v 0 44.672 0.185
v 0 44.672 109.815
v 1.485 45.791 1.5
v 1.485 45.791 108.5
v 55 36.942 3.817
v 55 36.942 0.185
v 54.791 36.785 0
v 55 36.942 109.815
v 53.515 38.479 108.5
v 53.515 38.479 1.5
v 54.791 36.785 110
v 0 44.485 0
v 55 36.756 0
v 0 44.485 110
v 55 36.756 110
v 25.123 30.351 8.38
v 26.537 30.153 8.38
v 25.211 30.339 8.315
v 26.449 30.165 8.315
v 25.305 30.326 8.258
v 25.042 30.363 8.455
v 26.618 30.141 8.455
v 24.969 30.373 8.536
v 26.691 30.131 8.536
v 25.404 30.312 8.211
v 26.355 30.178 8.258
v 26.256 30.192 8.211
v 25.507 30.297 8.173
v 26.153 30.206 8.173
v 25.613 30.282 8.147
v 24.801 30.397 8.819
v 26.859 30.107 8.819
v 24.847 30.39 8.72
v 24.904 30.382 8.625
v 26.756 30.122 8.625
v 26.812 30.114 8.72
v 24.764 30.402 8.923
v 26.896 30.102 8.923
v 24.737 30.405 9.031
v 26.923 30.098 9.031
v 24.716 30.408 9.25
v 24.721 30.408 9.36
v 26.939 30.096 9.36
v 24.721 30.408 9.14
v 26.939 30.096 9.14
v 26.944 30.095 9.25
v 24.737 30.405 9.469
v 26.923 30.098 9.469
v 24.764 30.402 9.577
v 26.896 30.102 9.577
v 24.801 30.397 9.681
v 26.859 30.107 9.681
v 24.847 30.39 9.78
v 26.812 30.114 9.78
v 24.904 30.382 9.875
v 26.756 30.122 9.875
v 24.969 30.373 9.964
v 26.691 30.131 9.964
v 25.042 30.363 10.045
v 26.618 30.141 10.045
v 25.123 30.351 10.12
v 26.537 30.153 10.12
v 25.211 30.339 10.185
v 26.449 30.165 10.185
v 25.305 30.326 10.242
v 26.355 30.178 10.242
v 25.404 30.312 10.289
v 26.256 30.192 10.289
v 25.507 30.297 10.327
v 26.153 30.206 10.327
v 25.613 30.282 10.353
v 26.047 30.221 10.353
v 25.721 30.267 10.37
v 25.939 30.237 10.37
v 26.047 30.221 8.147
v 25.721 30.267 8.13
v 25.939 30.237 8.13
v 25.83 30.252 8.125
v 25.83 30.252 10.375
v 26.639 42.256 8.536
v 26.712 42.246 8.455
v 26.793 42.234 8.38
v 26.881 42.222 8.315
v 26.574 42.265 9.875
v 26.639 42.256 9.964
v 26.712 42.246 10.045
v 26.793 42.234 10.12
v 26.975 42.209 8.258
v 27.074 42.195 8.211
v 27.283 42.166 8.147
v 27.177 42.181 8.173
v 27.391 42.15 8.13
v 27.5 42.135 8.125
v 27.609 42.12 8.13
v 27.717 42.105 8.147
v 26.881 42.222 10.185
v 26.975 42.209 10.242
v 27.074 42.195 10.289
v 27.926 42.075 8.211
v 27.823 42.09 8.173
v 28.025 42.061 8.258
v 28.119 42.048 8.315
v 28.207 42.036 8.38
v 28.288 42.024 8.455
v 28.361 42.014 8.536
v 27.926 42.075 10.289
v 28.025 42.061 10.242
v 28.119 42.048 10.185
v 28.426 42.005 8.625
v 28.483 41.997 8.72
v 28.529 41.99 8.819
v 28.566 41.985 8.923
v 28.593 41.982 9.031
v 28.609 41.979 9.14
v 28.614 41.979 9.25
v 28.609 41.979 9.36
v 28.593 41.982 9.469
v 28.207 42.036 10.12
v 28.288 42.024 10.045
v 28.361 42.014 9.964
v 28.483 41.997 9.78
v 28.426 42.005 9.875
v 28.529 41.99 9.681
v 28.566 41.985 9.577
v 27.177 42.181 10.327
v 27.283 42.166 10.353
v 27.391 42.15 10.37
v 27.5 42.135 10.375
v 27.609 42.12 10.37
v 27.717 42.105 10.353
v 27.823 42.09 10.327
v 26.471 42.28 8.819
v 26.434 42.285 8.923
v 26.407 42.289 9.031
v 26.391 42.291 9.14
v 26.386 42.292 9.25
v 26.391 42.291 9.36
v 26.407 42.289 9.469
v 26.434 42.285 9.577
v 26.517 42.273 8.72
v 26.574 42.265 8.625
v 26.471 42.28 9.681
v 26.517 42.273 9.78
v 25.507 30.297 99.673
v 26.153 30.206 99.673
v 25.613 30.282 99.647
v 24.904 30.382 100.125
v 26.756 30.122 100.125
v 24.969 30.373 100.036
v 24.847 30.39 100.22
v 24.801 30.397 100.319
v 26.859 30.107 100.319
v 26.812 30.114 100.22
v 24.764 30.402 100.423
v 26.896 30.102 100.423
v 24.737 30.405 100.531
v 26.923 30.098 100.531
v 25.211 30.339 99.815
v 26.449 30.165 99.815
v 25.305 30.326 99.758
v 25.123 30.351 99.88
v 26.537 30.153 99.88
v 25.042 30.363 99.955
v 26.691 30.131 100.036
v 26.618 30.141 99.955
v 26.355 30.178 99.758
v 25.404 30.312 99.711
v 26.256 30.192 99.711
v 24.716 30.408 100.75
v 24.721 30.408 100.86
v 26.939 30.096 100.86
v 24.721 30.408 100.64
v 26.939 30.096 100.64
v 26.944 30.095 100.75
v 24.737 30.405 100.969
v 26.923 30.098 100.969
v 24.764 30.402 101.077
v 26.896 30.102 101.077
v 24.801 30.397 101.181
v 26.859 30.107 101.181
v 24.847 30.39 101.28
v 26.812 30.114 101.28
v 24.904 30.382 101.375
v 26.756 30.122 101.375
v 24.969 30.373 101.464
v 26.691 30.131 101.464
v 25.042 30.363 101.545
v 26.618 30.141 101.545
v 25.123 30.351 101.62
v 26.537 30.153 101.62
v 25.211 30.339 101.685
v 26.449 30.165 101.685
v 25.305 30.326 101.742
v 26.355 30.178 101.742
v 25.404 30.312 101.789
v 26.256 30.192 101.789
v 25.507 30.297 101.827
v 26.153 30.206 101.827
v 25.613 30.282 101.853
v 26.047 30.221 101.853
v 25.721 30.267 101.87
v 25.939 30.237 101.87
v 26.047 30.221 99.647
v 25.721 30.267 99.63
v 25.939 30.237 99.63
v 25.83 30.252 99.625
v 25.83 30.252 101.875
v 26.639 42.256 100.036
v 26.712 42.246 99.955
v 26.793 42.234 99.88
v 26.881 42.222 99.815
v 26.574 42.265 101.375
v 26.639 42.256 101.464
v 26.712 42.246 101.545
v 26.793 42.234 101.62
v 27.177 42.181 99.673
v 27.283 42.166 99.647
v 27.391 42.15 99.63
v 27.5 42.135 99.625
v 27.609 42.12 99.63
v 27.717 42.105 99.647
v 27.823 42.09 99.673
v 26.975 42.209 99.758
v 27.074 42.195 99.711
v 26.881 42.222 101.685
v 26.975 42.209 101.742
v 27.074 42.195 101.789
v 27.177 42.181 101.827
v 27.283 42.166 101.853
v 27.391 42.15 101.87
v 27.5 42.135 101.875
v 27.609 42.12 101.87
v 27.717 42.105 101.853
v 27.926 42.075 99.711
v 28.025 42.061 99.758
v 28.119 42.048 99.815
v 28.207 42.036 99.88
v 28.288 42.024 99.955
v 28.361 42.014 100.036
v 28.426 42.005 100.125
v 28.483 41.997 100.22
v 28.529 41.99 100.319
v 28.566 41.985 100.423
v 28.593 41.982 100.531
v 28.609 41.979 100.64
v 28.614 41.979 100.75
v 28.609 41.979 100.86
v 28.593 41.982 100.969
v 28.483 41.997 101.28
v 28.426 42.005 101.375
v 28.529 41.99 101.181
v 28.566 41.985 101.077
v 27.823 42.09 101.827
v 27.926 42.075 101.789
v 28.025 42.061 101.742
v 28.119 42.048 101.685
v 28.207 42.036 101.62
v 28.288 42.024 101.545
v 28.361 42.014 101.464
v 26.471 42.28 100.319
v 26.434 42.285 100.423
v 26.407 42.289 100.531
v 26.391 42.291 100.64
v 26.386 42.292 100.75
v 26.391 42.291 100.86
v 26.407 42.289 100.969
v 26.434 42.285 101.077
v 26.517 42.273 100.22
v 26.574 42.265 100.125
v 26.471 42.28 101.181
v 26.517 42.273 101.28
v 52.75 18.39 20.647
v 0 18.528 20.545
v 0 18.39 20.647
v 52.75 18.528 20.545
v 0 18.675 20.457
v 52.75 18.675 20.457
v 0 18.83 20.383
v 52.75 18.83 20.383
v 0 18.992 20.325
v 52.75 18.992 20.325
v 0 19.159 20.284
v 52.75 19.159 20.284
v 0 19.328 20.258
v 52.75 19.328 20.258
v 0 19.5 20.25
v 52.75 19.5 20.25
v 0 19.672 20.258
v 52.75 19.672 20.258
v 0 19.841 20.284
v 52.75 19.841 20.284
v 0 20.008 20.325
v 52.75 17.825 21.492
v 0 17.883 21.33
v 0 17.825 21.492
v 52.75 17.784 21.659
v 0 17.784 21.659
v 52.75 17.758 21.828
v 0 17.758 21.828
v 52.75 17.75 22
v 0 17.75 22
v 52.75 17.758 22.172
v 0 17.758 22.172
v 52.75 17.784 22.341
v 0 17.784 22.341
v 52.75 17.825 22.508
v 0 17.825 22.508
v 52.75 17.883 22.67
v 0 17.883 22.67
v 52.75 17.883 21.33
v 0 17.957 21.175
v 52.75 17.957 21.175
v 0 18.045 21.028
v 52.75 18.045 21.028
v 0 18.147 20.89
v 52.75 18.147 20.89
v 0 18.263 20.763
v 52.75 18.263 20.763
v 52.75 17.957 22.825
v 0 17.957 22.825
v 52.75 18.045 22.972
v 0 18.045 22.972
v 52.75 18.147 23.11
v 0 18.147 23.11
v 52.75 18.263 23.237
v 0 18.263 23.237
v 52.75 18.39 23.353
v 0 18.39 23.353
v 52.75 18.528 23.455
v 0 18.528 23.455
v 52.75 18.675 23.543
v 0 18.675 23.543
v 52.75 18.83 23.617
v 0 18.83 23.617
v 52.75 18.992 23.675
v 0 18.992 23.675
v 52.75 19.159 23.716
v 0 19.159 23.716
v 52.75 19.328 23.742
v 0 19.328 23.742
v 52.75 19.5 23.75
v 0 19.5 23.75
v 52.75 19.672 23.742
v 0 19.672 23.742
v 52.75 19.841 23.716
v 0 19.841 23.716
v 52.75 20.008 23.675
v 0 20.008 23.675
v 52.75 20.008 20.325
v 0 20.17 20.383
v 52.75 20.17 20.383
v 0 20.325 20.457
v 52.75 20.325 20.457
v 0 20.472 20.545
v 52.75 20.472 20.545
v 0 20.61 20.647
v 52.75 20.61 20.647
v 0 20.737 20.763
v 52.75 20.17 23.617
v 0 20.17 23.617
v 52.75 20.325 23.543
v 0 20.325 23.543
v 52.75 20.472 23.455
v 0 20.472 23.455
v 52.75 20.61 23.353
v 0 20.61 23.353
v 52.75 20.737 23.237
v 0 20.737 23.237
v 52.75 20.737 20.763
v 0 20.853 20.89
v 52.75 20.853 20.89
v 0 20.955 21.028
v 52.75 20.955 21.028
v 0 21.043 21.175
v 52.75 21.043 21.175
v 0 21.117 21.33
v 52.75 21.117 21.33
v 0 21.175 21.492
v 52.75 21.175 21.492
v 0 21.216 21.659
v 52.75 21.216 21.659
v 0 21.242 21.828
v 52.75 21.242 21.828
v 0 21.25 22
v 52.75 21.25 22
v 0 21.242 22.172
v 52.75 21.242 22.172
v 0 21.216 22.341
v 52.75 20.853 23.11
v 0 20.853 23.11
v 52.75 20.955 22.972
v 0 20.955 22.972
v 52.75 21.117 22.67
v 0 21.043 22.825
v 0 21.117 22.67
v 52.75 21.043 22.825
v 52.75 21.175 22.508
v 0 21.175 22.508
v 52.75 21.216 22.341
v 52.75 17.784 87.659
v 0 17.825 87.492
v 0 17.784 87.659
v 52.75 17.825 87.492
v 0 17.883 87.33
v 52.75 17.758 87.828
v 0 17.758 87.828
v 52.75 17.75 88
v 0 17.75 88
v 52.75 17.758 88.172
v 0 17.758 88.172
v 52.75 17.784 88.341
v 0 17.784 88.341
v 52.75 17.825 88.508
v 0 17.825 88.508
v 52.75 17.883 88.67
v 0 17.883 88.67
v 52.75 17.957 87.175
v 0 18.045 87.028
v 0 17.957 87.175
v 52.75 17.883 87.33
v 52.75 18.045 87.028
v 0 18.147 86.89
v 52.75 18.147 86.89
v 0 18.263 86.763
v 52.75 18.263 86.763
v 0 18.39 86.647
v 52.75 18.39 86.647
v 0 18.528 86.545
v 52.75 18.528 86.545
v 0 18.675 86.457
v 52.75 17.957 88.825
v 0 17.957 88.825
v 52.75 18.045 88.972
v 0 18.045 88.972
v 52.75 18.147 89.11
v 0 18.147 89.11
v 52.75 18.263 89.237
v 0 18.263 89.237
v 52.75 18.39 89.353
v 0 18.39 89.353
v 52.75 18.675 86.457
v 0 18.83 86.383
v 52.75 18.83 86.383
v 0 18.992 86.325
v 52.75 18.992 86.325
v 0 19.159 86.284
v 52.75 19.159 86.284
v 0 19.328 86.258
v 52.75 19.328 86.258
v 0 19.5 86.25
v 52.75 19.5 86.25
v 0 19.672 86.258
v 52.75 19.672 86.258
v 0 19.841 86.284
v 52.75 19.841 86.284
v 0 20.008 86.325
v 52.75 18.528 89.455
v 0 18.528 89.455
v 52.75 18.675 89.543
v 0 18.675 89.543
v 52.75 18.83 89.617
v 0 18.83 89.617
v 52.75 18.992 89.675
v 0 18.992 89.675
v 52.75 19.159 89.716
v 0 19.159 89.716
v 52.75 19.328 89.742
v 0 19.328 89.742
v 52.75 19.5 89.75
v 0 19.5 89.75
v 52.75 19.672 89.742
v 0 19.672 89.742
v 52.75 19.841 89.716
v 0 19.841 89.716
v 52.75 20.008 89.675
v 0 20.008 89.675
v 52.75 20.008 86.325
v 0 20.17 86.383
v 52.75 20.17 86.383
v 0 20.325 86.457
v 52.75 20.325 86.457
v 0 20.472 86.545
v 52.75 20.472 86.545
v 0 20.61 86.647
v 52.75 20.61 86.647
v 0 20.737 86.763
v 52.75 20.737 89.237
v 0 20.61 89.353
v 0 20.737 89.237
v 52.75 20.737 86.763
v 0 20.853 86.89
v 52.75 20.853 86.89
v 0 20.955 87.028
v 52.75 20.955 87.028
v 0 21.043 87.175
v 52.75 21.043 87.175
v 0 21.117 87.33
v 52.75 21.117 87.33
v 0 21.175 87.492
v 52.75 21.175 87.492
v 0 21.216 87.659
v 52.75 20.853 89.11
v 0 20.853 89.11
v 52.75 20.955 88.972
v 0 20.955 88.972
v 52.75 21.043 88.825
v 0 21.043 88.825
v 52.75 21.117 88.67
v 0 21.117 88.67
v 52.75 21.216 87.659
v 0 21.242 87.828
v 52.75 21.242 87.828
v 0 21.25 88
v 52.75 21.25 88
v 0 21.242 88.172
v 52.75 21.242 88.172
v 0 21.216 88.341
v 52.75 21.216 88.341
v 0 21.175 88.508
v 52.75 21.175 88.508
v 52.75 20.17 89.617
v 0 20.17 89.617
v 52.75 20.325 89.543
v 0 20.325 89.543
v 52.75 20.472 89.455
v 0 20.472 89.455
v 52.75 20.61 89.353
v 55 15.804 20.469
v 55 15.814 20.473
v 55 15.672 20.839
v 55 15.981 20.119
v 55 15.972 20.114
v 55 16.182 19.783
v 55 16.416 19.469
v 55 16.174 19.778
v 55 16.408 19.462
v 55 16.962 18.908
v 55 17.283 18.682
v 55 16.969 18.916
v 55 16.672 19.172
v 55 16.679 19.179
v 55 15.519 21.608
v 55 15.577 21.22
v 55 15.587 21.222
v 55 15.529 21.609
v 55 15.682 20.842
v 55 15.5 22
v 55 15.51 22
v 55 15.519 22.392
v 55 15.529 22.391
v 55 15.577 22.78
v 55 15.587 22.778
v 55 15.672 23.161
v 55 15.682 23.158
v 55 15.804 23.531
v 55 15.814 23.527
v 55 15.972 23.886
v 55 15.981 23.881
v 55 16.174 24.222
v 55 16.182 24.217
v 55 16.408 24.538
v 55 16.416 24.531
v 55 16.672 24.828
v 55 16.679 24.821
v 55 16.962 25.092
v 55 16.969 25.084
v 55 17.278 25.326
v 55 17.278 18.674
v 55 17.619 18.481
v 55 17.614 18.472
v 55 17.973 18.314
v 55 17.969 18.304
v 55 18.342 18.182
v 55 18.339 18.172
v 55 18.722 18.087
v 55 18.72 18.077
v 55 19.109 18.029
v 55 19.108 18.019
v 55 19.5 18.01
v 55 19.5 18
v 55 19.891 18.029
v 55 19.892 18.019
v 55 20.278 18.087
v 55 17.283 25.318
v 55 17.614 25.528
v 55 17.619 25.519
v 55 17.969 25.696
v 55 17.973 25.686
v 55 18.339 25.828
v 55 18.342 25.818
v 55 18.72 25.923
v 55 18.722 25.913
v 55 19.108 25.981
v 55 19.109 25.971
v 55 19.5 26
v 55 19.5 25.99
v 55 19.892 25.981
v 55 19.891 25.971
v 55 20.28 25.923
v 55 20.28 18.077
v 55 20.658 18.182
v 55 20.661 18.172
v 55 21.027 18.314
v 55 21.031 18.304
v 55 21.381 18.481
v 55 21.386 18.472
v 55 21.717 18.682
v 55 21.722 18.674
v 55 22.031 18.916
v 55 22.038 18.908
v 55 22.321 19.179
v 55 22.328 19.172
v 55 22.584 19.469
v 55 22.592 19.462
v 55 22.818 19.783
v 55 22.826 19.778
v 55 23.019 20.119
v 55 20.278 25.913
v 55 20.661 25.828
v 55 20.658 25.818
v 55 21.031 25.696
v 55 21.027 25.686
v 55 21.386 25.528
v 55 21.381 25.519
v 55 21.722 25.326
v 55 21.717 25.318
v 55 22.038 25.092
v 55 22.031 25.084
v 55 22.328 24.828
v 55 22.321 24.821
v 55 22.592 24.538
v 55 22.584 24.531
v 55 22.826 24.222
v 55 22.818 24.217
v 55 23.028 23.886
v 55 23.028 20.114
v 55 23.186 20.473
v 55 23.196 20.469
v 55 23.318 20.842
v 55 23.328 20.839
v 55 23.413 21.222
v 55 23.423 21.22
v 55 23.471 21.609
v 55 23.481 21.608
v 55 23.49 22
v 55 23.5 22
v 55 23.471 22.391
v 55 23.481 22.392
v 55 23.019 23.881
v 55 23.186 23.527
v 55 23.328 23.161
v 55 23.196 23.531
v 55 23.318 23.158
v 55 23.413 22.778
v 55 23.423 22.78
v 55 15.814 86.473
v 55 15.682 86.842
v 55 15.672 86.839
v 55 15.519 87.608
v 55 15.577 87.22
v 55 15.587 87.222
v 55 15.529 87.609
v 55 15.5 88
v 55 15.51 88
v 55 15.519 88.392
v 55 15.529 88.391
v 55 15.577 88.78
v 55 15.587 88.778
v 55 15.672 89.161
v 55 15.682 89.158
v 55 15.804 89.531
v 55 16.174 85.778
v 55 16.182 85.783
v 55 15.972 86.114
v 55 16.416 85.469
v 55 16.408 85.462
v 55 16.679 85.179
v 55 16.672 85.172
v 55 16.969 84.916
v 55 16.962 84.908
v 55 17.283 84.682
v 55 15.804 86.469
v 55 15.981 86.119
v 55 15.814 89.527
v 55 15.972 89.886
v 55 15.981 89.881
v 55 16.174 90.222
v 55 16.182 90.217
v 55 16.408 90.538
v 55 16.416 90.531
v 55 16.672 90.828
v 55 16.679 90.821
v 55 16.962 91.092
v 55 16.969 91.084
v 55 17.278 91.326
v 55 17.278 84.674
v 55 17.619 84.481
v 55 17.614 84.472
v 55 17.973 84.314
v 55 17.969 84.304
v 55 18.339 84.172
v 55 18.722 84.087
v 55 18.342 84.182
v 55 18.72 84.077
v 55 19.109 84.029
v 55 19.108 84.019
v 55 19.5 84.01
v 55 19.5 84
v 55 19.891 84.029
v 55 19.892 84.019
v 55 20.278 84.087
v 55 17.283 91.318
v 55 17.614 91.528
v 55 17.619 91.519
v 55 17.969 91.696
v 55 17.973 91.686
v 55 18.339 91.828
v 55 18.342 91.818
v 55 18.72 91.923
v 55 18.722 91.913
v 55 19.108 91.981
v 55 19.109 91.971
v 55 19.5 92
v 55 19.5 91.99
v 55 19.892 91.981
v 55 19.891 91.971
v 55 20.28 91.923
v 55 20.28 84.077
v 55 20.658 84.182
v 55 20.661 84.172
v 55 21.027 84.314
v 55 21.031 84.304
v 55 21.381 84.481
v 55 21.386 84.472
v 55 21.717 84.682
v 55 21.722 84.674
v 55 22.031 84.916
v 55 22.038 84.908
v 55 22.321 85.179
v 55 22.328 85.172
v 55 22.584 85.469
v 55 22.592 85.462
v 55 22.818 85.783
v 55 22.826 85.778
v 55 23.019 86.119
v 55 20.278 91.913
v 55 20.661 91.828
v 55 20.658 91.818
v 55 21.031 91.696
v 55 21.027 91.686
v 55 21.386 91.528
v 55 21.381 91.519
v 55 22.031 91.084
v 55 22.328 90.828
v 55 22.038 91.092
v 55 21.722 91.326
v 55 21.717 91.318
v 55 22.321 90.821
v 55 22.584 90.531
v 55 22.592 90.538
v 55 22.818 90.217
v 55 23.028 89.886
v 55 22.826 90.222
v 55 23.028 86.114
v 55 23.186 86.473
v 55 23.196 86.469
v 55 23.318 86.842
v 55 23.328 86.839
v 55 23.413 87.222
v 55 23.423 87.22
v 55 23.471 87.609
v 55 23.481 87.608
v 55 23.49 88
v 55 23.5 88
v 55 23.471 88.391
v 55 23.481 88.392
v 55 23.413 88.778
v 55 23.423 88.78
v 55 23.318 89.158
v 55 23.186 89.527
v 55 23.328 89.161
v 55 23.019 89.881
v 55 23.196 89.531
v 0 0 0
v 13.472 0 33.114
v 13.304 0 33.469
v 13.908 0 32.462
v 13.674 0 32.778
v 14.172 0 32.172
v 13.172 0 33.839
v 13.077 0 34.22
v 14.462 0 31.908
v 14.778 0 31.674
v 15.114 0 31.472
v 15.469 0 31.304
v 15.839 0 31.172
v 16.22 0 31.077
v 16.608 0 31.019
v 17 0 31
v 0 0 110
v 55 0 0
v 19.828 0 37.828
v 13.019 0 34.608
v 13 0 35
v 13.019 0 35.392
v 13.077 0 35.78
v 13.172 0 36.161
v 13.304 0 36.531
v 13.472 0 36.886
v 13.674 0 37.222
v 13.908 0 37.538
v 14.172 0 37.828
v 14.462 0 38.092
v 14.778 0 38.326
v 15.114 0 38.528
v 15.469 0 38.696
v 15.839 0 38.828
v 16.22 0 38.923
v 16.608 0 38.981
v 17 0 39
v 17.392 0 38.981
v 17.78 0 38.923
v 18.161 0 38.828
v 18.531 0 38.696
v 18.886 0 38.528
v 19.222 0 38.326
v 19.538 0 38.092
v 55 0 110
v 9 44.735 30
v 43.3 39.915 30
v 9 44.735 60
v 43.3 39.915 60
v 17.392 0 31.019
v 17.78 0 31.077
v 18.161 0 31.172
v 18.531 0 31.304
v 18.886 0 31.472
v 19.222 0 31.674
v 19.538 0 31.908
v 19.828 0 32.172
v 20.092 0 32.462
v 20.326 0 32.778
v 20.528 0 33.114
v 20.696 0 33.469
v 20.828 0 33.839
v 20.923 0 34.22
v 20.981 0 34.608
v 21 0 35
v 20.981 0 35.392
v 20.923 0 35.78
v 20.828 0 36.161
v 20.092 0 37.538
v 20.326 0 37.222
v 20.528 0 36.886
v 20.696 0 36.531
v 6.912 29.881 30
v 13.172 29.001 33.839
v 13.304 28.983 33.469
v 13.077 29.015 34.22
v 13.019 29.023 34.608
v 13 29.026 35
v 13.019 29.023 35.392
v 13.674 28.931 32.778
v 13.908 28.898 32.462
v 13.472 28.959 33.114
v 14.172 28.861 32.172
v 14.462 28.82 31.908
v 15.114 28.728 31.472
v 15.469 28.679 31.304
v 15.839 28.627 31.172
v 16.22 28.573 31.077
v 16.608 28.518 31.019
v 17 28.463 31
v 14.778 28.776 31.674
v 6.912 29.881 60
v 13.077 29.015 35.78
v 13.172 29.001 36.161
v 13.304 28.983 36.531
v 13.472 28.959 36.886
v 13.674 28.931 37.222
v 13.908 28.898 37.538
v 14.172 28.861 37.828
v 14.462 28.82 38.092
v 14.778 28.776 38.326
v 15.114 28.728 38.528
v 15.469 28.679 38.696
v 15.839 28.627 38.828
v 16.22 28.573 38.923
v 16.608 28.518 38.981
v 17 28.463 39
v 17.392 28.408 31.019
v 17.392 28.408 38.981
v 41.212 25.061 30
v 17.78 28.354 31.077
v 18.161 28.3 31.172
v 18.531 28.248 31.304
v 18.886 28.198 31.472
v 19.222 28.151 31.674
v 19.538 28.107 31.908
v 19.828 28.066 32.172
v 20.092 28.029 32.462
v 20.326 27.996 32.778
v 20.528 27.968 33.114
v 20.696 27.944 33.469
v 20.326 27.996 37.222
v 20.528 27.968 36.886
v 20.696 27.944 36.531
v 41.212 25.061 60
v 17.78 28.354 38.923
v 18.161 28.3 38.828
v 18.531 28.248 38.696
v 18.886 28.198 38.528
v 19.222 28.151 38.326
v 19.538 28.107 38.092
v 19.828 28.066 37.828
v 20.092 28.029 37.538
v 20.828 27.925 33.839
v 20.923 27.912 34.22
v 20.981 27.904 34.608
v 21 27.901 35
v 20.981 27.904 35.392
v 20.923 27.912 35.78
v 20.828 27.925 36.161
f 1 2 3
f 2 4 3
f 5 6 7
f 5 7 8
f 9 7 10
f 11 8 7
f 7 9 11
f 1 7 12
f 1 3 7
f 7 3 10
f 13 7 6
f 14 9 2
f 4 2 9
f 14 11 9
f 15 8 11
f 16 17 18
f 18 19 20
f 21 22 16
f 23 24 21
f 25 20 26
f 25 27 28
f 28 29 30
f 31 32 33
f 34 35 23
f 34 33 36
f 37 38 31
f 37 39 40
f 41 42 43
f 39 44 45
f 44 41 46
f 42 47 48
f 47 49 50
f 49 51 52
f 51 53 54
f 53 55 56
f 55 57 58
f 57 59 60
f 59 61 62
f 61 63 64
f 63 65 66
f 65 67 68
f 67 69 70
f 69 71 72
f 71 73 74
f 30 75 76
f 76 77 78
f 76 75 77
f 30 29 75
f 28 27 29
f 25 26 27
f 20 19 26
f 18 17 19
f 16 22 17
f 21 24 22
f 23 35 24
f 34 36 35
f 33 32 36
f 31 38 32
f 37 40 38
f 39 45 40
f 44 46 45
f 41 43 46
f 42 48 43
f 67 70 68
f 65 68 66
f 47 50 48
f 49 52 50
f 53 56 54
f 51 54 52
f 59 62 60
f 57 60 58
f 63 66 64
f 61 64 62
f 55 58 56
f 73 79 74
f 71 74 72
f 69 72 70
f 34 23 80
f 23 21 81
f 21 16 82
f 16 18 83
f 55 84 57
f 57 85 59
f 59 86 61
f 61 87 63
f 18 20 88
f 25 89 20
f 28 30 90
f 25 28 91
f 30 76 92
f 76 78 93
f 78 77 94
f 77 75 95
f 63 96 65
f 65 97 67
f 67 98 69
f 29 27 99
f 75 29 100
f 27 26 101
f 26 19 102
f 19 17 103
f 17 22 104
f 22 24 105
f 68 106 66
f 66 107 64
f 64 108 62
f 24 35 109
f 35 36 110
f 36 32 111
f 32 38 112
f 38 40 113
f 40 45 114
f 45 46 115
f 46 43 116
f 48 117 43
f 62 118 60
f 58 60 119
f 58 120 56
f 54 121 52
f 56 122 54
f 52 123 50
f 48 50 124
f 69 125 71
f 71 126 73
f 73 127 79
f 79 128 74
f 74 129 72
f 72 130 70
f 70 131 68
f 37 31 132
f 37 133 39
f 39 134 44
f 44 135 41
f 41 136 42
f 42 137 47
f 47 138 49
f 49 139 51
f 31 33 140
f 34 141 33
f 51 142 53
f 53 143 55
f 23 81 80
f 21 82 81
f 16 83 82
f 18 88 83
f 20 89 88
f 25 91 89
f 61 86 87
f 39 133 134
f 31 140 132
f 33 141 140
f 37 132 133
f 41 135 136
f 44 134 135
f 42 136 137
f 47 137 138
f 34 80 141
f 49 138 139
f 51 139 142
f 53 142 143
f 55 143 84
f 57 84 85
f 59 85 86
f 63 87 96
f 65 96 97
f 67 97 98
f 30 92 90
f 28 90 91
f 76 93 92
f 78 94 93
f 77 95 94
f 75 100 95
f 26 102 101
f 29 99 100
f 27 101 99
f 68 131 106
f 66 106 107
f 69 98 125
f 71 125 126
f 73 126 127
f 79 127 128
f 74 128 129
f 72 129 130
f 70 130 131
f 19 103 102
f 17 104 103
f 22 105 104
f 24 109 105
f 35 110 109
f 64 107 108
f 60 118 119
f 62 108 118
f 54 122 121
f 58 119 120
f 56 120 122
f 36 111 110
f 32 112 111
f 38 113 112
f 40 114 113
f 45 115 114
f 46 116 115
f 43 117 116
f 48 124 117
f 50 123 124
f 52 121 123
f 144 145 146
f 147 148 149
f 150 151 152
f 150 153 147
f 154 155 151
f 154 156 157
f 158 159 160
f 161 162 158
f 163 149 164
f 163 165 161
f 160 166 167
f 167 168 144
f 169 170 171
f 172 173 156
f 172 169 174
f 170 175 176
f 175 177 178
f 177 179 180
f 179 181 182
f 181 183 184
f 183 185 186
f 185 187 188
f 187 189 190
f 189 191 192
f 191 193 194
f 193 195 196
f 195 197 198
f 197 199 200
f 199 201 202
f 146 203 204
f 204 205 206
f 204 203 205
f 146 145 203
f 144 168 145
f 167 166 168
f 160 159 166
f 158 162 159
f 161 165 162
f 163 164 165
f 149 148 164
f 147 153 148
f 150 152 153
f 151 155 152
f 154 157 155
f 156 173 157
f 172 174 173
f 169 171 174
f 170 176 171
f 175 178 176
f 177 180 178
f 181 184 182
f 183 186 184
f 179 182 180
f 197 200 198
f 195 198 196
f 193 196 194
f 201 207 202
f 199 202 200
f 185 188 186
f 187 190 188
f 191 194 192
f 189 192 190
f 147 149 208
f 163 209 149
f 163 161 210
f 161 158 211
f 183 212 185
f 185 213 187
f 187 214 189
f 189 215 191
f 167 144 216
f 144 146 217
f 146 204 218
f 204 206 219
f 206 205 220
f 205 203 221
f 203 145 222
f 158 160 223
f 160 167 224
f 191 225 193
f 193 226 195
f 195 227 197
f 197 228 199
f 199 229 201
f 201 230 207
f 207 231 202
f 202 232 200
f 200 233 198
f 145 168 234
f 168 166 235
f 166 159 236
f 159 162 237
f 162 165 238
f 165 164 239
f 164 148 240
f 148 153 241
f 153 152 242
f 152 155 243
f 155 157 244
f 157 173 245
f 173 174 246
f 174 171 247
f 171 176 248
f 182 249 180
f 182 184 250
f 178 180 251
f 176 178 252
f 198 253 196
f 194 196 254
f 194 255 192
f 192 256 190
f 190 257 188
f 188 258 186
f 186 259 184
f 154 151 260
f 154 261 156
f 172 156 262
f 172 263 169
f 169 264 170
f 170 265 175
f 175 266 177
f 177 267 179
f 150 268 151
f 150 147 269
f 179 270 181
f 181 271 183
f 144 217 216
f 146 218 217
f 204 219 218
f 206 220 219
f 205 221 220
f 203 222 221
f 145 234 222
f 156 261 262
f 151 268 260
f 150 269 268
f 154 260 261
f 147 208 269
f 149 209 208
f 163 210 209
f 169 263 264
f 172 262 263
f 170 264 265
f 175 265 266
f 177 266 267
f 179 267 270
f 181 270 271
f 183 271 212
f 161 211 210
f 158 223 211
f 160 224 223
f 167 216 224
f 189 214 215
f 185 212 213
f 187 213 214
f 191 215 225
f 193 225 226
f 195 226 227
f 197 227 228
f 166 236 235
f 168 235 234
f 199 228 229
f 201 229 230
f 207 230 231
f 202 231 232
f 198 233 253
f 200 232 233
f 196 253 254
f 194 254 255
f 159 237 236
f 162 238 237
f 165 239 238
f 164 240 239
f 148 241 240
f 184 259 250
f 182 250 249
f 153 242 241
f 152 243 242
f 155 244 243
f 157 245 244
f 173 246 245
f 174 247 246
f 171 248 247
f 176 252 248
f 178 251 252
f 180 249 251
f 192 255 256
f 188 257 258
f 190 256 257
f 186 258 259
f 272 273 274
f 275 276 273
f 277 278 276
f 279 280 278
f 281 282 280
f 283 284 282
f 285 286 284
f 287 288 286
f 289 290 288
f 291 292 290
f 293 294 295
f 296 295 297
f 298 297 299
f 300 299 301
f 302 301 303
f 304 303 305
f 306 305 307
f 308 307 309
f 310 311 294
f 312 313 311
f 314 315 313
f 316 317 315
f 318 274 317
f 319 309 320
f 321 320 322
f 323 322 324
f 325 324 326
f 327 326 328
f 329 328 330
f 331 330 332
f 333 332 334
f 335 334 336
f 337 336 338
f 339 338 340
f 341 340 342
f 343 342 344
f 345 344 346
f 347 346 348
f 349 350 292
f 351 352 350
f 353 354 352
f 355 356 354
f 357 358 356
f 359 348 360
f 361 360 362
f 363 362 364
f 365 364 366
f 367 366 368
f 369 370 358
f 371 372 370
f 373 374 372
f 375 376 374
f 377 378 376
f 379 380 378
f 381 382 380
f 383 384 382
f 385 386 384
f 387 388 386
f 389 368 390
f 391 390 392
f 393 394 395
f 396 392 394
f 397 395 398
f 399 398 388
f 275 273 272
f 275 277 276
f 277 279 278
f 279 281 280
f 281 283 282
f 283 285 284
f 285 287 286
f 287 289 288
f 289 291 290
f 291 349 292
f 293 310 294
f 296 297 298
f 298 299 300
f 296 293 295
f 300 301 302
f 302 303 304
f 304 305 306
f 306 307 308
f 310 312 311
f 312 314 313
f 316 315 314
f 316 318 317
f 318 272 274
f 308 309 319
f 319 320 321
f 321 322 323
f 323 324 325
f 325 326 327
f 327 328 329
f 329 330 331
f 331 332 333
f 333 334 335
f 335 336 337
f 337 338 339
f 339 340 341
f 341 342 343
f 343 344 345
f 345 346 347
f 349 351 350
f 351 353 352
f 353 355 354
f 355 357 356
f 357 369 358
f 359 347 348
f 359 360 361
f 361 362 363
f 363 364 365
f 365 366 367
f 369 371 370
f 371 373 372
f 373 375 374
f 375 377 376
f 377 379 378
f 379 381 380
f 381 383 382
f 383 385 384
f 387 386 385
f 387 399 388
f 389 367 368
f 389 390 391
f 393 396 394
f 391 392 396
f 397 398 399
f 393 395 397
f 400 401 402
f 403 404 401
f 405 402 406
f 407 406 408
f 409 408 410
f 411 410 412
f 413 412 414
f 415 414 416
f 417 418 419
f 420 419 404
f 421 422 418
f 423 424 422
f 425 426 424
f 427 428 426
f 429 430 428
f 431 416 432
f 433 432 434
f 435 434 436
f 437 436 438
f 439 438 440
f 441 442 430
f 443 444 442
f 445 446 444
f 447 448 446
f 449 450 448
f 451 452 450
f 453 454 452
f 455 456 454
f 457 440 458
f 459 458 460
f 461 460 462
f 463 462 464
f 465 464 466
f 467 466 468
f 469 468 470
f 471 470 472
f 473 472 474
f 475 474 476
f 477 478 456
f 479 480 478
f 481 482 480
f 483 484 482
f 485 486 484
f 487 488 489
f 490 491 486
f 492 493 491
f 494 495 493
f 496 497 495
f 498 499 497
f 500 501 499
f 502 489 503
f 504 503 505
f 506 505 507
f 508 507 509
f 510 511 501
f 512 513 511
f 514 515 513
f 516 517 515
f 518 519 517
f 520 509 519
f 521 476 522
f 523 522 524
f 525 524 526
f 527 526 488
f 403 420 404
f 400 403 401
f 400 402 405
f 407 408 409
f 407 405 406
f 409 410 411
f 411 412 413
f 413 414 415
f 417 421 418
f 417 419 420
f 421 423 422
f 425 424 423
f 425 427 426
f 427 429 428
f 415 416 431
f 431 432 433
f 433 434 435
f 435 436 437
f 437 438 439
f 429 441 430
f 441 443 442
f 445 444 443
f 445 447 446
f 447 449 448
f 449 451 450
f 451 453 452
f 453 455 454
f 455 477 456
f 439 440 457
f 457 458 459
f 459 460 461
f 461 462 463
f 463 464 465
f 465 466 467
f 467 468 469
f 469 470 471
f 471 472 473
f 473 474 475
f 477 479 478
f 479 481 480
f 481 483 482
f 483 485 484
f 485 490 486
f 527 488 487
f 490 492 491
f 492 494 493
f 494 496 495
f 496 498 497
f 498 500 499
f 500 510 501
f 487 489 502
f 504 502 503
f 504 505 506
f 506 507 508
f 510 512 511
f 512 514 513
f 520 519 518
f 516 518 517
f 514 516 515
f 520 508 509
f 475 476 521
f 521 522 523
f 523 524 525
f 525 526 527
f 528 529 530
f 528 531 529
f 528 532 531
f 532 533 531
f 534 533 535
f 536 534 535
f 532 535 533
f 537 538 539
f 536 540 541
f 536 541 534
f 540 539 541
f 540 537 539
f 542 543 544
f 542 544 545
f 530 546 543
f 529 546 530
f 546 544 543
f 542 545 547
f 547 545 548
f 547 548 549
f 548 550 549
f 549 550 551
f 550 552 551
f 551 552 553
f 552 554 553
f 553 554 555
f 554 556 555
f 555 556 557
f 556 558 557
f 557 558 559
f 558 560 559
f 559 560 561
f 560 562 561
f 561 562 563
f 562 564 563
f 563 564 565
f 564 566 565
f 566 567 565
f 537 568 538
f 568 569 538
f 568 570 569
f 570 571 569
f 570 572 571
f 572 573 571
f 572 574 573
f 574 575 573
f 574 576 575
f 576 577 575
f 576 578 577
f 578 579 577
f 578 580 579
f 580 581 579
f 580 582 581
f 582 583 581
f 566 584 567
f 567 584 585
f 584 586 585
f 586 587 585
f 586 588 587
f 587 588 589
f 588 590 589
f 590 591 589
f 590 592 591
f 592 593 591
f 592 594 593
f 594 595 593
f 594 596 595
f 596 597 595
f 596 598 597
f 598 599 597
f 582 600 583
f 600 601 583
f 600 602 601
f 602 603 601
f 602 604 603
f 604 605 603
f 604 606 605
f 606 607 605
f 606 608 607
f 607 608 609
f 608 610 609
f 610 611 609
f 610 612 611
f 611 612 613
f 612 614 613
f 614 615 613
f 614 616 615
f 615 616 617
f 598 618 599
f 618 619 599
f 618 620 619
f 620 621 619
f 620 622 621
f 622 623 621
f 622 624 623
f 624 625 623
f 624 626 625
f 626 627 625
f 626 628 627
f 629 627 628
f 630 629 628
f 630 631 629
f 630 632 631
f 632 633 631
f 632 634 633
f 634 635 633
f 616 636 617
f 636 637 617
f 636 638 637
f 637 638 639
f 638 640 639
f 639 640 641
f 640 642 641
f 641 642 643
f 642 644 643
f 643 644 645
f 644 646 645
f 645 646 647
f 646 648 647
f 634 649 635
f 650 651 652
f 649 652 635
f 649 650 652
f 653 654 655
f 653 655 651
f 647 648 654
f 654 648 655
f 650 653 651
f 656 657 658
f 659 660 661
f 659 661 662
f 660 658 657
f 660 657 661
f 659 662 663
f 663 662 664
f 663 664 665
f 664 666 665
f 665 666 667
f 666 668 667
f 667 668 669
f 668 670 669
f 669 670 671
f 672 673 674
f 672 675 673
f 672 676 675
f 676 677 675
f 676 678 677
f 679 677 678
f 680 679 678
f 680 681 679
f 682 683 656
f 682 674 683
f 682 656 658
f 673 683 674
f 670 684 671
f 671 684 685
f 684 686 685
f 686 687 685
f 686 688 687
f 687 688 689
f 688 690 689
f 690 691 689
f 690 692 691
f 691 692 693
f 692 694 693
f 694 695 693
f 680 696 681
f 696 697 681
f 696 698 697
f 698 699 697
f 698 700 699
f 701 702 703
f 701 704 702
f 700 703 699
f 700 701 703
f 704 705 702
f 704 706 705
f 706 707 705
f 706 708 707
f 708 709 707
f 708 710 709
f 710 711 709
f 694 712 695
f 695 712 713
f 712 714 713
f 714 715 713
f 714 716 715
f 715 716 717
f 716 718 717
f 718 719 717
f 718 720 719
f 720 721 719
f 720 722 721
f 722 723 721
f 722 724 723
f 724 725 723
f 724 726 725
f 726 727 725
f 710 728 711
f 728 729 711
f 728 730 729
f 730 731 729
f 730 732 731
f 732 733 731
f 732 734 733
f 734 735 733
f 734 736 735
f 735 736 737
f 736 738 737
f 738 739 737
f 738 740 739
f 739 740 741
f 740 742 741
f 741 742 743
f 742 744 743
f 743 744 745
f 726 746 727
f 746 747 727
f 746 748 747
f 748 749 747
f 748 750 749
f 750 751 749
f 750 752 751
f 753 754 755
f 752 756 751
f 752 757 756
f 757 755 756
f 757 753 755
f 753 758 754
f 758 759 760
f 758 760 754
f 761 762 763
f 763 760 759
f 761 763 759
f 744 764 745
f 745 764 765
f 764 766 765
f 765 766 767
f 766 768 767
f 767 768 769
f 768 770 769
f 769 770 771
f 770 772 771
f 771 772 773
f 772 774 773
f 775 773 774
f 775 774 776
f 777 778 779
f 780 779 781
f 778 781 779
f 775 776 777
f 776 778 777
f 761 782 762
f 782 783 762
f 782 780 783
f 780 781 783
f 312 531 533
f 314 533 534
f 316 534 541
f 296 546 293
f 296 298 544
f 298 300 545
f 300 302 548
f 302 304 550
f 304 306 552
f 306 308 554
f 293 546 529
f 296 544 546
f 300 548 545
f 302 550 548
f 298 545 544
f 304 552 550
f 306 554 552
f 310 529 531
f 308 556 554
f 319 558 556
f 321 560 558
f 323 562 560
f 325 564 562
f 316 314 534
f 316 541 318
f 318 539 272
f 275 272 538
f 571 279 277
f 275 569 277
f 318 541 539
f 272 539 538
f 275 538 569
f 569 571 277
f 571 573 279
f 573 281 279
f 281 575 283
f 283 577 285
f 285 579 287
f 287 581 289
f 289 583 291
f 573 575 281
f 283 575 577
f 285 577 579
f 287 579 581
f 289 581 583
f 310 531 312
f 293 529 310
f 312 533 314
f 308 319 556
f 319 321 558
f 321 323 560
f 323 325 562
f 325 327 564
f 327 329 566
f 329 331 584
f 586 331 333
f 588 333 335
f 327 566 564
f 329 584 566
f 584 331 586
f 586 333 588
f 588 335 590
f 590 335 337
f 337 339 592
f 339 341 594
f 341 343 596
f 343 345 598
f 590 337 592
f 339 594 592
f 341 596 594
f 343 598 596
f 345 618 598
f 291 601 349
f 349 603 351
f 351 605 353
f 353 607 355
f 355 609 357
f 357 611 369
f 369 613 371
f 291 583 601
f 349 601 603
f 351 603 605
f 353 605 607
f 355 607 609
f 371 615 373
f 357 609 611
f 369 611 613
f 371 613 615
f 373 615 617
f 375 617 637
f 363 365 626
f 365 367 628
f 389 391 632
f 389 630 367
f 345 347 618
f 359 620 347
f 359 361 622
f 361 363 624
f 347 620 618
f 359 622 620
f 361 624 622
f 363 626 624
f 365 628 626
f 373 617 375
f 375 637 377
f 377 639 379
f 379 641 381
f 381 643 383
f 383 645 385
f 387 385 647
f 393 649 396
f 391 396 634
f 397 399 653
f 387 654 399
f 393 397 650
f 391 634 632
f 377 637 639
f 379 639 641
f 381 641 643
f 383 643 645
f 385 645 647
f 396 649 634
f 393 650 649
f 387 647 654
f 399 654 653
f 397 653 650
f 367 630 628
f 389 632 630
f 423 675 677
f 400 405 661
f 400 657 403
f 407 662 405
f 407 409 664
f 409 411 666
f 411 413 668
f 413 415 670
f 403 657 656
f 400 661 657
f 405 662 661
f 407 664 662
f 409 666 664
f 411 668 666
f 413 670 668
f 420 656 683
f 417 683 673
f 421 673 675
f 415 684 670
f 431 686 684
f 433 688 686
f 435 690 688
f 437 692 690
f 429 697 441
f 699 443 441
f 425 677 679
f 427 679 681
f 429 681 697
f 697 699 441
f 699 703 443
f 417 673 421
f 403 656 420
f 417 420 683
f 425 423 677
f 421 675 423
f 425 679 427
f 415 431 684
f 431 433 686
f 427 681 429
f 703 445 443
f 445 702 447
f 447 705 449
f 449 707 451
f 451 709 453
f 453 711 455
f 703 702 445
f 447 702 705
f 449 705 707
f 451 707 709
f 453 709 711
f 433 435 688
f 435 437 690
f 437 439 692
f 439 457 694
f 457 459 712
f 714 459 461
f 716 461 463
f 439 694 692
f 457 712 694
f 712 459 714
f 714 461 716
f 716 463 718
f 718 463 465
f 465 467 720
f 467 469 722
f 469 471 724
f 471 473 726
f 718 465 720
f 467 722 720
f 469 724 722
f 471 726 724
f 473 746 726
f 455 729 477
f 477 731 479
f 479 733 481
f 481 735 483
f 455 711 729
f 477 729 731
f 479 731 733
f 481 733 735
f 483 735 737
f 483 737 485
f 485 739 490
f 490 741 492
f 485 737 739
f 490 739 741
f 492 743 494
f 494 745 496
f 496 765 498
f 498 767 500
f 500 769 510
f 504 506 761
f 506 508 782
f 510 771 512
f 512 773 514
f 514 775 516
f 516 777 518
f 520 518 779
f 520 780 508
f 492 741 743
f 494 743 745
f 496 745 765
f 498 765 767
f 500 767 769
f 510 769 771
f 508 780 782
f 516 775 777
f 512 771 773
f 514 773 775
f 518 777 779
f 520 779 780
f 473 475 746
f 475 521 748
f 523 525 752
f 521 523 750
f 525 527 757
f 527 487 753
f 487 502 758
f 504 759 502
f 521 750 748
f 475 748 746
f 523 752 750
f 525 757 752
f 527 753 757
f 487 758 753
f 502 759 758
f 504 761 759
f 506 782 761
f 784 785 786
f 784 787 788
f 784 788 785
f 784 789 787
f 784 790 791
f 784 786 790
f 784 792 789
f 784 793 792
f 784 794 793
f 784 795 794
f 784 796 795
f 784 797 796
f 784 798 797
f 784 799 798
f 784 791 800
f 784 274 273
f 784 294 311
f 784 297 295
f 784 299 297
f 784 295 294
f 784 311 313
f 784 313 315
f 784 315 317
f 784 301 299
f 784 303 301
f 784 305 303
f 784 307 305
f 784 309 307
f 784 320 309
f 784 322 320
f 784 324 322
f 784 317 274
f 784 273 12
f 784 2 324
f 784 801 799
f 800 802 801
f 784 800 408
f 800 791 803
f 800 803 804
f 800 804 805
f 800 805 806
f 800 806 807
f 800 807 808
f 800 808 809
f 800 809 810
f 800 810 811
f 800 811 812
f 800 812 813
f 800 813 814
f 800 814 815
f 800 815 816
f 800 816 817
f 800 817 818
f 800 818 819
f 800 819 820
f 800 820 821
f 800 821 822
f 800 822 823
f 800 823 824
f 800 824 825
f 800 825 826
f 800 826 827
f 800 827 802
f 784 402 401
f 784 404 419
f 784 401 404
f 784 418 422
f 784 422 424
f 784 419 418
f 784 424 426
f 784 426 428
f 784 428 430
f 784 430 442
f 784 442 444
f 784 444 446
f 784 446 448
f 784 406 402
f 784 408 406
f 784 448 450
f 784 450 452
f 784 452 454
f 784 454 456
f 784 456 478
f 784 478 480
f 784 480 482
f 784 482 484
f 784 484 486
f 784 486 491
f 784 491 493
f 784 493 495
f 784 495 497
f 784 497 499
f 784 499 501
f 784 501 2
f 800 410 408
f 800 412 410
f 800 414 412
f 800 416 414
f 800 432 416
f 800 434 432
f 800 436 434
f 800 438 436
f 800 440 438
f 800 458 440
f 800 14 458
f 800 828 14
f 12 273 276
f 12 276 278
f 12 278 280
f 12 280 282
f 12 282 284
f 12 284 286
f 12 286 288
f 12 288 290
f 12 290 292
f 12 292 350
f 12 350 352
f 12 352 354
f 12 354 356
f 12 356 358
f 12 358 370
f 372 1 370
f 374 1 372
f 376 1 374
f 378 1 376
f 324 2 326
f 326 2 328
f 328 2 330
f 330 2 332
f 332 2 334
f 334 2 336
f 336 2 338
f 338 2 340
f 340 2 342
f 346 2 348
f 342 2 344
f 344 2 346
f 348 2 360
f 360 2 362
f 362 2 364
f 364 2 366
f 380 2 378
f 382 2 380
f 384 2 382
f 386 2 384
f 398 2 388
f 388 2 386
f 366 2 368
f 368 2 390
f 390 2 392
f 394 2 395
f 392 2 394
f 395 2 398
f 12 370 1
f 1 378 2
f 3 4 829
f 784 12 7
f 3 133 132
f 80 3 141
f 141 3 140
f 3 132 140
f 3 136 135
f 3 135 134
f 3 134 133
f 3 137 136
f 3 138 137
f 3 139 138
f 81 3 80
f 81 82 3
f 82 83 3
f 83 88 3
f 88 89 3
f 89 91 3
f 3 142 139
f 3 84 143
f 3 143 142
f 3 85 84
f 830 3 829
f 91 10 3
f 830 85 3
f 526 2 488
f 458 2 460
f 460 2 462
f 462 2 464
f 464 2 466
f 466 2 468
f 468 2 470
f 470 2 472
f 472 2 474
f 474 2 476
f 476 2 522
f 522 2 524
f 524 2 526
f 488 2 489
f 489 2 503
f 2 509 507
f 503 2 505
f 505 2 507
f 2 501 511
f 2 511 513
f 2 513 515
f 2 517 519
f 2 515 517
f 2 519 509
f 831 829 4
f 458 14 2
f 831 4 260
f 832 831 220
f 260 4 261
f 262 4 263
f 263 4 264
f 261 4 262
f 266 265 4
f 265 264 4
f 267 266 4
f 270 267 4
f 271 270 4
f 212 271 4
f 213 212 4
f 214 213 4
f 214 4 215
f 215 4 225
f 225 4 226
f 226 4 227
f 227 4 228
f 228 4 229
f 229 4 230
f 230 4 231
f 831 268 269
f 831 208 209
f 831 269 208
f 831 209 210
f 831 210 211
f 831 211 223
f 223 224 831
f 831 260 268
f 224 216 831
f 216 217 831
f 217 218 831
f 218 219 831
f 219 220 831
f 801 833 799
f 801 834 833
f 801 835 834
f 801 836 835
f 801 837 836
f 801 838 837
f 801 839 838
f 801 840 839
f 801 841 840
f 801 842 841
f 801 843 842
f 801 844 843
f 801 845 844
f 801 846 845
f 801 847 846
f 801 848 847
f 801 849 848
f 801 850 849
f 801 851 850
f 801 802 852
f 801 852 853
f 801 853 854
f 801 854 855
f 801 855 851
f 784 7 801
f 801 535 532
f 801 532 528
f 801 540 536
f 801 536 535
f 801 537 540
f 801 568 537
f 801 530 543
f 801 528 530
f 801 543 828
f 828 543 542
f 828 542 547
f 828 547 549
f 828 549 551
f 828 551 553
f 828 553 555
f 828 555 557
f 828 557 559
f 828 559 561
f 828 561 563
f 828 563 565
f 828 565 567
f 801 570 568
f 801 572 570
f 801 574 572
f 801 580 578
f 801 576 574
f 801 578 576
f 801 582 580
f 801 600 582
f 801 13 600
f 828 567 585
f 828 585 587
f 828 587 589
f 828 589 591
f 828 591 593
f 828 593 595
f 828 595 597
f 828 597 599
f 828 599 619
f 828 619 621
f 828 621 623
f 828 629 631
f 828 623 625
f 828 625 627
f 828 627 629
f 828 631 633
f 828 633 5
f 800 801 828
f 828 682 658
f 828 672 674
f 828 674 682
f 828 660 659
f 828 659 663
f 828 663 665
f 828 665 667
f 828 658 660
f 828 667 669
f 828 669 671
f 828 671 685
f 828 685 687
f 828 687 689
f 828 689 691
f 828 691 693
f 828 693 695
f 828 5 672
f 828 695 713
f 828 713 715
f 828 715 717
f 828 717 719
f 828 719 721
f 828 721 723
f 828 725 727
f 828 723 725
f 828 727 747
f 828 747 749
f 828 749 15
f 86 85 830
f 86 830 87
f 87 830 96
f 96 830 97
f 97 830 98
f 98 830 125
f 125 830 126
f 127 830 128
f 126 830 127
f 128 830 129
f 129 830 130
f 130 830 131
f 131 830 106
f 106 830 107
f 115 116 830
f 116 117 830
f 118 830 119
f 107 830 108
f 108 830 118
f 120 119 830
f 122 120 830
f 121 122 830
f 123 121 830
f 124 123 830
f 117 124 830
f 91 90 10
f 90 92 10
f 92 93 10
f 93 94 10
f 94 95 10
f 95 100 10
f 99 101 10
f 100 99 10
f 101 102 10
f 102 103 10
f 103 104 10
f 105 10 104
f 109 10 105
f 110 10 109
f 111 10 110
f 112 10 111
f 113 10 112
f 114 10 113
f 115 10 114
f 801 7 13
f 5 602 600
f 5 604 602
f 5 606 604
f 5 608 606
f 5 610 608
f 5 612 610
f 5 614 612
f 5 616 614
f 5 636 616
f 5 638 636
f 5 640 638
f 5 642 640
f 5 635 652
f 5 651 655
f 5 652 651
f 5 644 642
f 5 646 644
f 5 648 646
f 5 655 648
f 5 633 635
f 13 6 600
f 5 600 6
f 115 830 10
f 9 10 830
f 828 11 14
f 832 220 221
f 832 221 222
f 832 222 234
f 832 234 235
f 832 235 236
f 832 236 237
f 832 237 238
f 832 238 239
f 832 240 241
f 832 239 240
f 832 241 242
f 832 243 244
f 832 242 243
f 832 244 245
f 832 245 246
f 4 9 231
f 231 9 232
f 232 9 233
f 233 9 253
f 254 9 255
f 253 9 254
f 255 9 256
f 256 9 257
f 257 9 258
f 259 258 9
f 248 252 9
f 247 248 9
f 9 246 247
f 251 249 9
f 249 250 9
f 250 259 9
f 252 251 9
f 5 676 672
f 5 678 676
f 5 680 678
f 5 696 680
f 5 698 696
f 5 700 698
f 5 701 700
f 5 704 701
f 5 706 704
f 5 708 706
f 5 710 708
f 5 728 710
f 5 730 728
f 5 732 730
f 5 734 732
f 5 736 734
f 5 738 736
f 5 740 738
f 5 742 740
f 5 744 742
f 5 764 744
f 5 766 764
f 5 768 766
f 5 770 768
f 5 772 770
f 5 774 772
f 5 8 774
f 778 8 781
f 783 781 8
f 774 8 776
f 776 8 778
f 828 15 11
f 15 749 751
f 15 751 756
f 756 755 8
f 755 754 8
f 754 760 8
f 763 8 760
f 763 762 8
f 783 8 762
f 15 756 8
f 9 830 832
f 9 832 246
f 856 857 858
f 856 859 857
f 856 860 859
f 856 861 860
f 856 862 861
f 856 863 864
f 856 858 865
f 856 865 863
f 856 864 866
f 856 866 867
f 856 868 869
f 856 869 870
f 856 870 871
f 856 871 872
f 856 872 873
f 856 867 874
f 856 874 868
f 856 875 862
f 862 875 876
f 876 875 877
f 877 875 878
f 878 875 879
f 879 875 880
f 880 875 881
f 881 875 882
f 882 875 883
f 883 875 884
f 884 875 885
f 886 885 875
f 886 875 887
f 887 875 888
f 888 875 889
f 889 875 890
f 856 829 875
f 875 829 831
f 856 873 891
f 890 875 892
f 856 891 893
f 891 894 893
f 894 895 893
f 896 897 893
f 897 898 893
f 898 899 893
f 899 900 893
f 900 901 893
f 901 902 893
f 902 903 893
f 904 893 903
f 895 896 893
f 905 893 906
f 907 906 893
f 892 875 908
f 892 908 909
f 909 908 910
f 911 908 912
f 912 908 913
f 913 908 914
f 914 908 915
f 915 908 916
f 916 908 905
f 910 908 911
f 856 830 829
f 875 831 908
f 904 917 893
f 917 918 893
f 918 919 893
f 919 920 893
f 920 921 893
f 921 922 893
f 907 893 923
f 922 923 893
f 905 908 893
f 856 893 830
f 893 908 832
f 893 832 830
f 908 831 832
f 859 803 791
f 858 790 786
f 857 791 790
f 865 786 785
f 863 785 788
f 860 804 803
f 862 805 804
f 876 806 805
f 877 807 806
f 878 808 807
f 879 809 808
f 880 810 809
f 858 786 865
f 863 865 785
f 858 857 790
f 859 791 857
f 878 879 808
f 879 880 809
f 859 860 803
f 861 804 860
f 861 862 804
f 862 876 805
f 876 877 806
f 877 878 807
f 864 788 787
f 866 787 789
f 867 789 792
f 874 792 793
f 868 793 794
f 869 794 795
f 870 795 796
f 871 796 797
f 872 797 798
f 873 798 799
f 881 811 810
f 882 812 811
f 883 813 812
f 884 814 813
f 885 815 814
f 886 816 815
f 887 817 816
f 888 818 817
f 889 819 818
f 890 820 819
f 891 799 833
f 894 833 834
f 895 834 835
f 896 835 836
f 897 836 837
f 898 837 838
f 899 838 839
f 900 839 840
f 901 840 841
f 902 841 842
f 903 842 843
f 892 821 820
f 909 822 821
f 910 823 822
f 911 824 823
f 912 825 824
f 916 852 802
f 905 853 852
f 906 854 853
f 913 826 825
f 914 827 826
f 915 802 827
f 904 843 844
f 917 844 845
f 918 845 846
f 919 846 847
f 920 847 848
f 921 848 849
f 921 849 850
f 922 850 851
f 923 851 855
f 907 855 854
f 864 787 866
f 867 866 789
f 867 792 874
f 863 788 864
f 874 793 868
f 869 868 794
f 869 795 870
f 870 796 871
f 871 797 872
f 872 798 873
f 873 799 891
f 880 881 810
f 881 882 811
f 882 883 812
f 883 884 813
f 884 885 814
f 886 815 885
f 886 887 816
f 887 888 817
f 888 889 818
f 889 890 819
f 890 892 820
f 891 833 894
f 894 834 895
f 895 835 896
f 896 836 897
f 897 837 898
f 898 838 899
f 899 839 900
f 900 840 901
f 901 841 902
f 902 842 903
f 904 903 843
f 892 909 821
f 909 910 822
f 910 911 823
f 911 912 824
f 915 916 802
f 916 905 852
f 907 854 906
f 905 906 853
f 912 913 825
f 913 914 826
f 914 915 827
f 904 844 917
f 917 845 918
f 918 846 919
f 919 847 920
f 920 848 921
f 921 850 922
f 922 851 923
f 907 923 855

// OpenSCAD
// Ring camera angled mounting block
// Source of truth for the part. Edit values here, then run build.ps1.
//
// Source tags on each value:
//   [written] = dimension written on the hand sketch (docs/sketch.webp)
//   [scaled]  = measured off the sketch at ~6.7 px/mm (approximate)
//   [chosen]  = decision made during design; see README "Open questions"
//
// Coordinate frame (mm):
//   X = width,  0 = deep side (mounting side), 55 = shallow side (countersink side)
//   Y = depth,  0 = back face (cable entry), +Y points out of the camera face
//   Z = height, 0 = bottom
// Looking at the camera face (sketch "front view"): shallow side on the left,
// deep side on the right. The camera face turns toward the shallow side.

/* [Block] */
width       = 55;     // [written]
height      = 110;    // [written]
depth_deep  = 46;     // [scaled]  depth at the deep (mounting) side
face_angle  = 8;      // [chosen]  degrees the camera face is turned
face_chamfer = 1.5;   // [chosen]  45 degree bevel on the camera-face edges; 0 = none

/* [Ring mounting holes] */
ring_hole_d       = 2.25;  // [written]
ring_hole_spacing = 91.5;  // [written] centre to centre, vertically centred
ring_hole_depth   = 12;    // [chosen]  measured into the camera face

/* [Wiring pocket] */
pocket_z_min      = 30;    // [written] bottom of pocket above block bottom
pocket_z_max      = 60;    // [written] top of pocket above block bottom
pocket_deep_inset = 9;     // [scaled]  pocket edge to deep side, front view
pocket_width      = 34.3;  // [scaled]  front-view width
pocket_depth      = 15;    // [chosen]  perpendicular to the camera face

/* [Cable hole] */
cable_d           = 8;     // [written]
cable_z           = 35;    // [scaled]  centre height
cable_deep_inset  = 17;    // [scaled]  centre to deep side

/* [Block mounting screws] (through the width, X axis) */
screw_d           = 3.5;   // [written?] shank clearance; sketch text hard to read
screw_head_d      = 8;     // [written] countersink diameter at the surface
screw_y           = 19.5;  // [scaled]  distance from back face
screw_z           = [22, 88]; // [scaled] heights
screw_head_recess = 0;     // [chosen]  extra counterbore depth to shorten screws

/* [Quality] */
$fn = 64;

// ---- derived ----
eps           = 0.01;
depth_shallow = depth_deep - width * tan(face_angle);
face_x0       = width / 2;
face_y0       = (depth_deep + depth_shallow) / 2;

// X position -> distance along the angled face from its centre
function face_u(x) = (x - face_x0) / cos(face_angle);

module block() {
    linear_extrude(height)
        polygon([[0, 0], [width, 0], [width, depth_shallow], [0, depth_deep]]);
}

// Local frame on the camera face: +X along the face, +Y out of the face, Z up
module on_face() {
    translate([face_x0, face_y0, 0]) rotate([0, 0, -face_angle]) children();
}

// 45 degree bevel around the camera face: a square bar turned 45 degrees about each edge.
// Top and bottom edges meet square faces, so their bevel is exact; the side faces
// meet the camera face at 90 +/- face_angle, so the side bevels are slightly uneven.
module face_chamfers() {
    face_len = width / cos(face_angle);
    s = face_chamfer * sqrt(2);
    if (face_chamfer > 0) on_face() {
        for (u = [-face_len / 2, face_len / 2])
            translate([u, 0, height / 2]) rotate([0, 0, 45])
                cube([s, s, height + 2], center = true);
        for (z = [0, height])
            translate([0, 0, z]) rotate([45, 0, 0])
                cube([face_len + 2, s, s], center = true);
    }
}

module ring_holes() {
    for (z = [(height - ring_hole_spacing) / 2, (height + ring_hole_spacing) / 2])
        on_face() translate([0, eps, z]) rotate([90, 0, 0])
            cylinder(d = ring_hole_d, h = ring_hole_depth + eps);
}

module pocket() {
    u0 = face_u(pocket_deep_inset);
    u1 = face_u(pocket_deep_inset + pocket_width);
    // Extra +Y so the cut clears the face completely
    on_face() translate([u0, -pocket_depth, pocket_z_min])
        cube([u1 - u0, pocket_depth + 5, pocket_z_max - pocket_z_min]);
}

module cable_hole() {
    // From the back face into the pocket; stops inside the pocket void
    translate([cable_deep_inset, -eps, cable_z]) rotate([-90, 0, 0])
        cylinder(d = cable_d, h = depth_shallow);
}

module screw_holes() {
    sink = (screw_head_d - screw_d) / 2;  // 90 degree countersink
    // Local +Z runs from the shallow side face toward the deep side
    for (z = screw_z) translate([width, screw_y, z]) rotate([0, -90, 0]) {
        translate([0, 0, -eps]) cylinder(d = screw_d, h = width + 2 * eps);
        translate([0, 0, -eps]) cylinder(d = screw_head_d, h = screw_head_recess + eps);
        translate([0, 0, screw_head_recess - eps])
            cylinder(d1 = screw_head_d, d2 = screw_d, h = sink + eps);
    }
}

difference() {
    block();
    face_chamfers();
    ring_holes();
    pocket();
    cable_hole();
    screw_holes();
}
